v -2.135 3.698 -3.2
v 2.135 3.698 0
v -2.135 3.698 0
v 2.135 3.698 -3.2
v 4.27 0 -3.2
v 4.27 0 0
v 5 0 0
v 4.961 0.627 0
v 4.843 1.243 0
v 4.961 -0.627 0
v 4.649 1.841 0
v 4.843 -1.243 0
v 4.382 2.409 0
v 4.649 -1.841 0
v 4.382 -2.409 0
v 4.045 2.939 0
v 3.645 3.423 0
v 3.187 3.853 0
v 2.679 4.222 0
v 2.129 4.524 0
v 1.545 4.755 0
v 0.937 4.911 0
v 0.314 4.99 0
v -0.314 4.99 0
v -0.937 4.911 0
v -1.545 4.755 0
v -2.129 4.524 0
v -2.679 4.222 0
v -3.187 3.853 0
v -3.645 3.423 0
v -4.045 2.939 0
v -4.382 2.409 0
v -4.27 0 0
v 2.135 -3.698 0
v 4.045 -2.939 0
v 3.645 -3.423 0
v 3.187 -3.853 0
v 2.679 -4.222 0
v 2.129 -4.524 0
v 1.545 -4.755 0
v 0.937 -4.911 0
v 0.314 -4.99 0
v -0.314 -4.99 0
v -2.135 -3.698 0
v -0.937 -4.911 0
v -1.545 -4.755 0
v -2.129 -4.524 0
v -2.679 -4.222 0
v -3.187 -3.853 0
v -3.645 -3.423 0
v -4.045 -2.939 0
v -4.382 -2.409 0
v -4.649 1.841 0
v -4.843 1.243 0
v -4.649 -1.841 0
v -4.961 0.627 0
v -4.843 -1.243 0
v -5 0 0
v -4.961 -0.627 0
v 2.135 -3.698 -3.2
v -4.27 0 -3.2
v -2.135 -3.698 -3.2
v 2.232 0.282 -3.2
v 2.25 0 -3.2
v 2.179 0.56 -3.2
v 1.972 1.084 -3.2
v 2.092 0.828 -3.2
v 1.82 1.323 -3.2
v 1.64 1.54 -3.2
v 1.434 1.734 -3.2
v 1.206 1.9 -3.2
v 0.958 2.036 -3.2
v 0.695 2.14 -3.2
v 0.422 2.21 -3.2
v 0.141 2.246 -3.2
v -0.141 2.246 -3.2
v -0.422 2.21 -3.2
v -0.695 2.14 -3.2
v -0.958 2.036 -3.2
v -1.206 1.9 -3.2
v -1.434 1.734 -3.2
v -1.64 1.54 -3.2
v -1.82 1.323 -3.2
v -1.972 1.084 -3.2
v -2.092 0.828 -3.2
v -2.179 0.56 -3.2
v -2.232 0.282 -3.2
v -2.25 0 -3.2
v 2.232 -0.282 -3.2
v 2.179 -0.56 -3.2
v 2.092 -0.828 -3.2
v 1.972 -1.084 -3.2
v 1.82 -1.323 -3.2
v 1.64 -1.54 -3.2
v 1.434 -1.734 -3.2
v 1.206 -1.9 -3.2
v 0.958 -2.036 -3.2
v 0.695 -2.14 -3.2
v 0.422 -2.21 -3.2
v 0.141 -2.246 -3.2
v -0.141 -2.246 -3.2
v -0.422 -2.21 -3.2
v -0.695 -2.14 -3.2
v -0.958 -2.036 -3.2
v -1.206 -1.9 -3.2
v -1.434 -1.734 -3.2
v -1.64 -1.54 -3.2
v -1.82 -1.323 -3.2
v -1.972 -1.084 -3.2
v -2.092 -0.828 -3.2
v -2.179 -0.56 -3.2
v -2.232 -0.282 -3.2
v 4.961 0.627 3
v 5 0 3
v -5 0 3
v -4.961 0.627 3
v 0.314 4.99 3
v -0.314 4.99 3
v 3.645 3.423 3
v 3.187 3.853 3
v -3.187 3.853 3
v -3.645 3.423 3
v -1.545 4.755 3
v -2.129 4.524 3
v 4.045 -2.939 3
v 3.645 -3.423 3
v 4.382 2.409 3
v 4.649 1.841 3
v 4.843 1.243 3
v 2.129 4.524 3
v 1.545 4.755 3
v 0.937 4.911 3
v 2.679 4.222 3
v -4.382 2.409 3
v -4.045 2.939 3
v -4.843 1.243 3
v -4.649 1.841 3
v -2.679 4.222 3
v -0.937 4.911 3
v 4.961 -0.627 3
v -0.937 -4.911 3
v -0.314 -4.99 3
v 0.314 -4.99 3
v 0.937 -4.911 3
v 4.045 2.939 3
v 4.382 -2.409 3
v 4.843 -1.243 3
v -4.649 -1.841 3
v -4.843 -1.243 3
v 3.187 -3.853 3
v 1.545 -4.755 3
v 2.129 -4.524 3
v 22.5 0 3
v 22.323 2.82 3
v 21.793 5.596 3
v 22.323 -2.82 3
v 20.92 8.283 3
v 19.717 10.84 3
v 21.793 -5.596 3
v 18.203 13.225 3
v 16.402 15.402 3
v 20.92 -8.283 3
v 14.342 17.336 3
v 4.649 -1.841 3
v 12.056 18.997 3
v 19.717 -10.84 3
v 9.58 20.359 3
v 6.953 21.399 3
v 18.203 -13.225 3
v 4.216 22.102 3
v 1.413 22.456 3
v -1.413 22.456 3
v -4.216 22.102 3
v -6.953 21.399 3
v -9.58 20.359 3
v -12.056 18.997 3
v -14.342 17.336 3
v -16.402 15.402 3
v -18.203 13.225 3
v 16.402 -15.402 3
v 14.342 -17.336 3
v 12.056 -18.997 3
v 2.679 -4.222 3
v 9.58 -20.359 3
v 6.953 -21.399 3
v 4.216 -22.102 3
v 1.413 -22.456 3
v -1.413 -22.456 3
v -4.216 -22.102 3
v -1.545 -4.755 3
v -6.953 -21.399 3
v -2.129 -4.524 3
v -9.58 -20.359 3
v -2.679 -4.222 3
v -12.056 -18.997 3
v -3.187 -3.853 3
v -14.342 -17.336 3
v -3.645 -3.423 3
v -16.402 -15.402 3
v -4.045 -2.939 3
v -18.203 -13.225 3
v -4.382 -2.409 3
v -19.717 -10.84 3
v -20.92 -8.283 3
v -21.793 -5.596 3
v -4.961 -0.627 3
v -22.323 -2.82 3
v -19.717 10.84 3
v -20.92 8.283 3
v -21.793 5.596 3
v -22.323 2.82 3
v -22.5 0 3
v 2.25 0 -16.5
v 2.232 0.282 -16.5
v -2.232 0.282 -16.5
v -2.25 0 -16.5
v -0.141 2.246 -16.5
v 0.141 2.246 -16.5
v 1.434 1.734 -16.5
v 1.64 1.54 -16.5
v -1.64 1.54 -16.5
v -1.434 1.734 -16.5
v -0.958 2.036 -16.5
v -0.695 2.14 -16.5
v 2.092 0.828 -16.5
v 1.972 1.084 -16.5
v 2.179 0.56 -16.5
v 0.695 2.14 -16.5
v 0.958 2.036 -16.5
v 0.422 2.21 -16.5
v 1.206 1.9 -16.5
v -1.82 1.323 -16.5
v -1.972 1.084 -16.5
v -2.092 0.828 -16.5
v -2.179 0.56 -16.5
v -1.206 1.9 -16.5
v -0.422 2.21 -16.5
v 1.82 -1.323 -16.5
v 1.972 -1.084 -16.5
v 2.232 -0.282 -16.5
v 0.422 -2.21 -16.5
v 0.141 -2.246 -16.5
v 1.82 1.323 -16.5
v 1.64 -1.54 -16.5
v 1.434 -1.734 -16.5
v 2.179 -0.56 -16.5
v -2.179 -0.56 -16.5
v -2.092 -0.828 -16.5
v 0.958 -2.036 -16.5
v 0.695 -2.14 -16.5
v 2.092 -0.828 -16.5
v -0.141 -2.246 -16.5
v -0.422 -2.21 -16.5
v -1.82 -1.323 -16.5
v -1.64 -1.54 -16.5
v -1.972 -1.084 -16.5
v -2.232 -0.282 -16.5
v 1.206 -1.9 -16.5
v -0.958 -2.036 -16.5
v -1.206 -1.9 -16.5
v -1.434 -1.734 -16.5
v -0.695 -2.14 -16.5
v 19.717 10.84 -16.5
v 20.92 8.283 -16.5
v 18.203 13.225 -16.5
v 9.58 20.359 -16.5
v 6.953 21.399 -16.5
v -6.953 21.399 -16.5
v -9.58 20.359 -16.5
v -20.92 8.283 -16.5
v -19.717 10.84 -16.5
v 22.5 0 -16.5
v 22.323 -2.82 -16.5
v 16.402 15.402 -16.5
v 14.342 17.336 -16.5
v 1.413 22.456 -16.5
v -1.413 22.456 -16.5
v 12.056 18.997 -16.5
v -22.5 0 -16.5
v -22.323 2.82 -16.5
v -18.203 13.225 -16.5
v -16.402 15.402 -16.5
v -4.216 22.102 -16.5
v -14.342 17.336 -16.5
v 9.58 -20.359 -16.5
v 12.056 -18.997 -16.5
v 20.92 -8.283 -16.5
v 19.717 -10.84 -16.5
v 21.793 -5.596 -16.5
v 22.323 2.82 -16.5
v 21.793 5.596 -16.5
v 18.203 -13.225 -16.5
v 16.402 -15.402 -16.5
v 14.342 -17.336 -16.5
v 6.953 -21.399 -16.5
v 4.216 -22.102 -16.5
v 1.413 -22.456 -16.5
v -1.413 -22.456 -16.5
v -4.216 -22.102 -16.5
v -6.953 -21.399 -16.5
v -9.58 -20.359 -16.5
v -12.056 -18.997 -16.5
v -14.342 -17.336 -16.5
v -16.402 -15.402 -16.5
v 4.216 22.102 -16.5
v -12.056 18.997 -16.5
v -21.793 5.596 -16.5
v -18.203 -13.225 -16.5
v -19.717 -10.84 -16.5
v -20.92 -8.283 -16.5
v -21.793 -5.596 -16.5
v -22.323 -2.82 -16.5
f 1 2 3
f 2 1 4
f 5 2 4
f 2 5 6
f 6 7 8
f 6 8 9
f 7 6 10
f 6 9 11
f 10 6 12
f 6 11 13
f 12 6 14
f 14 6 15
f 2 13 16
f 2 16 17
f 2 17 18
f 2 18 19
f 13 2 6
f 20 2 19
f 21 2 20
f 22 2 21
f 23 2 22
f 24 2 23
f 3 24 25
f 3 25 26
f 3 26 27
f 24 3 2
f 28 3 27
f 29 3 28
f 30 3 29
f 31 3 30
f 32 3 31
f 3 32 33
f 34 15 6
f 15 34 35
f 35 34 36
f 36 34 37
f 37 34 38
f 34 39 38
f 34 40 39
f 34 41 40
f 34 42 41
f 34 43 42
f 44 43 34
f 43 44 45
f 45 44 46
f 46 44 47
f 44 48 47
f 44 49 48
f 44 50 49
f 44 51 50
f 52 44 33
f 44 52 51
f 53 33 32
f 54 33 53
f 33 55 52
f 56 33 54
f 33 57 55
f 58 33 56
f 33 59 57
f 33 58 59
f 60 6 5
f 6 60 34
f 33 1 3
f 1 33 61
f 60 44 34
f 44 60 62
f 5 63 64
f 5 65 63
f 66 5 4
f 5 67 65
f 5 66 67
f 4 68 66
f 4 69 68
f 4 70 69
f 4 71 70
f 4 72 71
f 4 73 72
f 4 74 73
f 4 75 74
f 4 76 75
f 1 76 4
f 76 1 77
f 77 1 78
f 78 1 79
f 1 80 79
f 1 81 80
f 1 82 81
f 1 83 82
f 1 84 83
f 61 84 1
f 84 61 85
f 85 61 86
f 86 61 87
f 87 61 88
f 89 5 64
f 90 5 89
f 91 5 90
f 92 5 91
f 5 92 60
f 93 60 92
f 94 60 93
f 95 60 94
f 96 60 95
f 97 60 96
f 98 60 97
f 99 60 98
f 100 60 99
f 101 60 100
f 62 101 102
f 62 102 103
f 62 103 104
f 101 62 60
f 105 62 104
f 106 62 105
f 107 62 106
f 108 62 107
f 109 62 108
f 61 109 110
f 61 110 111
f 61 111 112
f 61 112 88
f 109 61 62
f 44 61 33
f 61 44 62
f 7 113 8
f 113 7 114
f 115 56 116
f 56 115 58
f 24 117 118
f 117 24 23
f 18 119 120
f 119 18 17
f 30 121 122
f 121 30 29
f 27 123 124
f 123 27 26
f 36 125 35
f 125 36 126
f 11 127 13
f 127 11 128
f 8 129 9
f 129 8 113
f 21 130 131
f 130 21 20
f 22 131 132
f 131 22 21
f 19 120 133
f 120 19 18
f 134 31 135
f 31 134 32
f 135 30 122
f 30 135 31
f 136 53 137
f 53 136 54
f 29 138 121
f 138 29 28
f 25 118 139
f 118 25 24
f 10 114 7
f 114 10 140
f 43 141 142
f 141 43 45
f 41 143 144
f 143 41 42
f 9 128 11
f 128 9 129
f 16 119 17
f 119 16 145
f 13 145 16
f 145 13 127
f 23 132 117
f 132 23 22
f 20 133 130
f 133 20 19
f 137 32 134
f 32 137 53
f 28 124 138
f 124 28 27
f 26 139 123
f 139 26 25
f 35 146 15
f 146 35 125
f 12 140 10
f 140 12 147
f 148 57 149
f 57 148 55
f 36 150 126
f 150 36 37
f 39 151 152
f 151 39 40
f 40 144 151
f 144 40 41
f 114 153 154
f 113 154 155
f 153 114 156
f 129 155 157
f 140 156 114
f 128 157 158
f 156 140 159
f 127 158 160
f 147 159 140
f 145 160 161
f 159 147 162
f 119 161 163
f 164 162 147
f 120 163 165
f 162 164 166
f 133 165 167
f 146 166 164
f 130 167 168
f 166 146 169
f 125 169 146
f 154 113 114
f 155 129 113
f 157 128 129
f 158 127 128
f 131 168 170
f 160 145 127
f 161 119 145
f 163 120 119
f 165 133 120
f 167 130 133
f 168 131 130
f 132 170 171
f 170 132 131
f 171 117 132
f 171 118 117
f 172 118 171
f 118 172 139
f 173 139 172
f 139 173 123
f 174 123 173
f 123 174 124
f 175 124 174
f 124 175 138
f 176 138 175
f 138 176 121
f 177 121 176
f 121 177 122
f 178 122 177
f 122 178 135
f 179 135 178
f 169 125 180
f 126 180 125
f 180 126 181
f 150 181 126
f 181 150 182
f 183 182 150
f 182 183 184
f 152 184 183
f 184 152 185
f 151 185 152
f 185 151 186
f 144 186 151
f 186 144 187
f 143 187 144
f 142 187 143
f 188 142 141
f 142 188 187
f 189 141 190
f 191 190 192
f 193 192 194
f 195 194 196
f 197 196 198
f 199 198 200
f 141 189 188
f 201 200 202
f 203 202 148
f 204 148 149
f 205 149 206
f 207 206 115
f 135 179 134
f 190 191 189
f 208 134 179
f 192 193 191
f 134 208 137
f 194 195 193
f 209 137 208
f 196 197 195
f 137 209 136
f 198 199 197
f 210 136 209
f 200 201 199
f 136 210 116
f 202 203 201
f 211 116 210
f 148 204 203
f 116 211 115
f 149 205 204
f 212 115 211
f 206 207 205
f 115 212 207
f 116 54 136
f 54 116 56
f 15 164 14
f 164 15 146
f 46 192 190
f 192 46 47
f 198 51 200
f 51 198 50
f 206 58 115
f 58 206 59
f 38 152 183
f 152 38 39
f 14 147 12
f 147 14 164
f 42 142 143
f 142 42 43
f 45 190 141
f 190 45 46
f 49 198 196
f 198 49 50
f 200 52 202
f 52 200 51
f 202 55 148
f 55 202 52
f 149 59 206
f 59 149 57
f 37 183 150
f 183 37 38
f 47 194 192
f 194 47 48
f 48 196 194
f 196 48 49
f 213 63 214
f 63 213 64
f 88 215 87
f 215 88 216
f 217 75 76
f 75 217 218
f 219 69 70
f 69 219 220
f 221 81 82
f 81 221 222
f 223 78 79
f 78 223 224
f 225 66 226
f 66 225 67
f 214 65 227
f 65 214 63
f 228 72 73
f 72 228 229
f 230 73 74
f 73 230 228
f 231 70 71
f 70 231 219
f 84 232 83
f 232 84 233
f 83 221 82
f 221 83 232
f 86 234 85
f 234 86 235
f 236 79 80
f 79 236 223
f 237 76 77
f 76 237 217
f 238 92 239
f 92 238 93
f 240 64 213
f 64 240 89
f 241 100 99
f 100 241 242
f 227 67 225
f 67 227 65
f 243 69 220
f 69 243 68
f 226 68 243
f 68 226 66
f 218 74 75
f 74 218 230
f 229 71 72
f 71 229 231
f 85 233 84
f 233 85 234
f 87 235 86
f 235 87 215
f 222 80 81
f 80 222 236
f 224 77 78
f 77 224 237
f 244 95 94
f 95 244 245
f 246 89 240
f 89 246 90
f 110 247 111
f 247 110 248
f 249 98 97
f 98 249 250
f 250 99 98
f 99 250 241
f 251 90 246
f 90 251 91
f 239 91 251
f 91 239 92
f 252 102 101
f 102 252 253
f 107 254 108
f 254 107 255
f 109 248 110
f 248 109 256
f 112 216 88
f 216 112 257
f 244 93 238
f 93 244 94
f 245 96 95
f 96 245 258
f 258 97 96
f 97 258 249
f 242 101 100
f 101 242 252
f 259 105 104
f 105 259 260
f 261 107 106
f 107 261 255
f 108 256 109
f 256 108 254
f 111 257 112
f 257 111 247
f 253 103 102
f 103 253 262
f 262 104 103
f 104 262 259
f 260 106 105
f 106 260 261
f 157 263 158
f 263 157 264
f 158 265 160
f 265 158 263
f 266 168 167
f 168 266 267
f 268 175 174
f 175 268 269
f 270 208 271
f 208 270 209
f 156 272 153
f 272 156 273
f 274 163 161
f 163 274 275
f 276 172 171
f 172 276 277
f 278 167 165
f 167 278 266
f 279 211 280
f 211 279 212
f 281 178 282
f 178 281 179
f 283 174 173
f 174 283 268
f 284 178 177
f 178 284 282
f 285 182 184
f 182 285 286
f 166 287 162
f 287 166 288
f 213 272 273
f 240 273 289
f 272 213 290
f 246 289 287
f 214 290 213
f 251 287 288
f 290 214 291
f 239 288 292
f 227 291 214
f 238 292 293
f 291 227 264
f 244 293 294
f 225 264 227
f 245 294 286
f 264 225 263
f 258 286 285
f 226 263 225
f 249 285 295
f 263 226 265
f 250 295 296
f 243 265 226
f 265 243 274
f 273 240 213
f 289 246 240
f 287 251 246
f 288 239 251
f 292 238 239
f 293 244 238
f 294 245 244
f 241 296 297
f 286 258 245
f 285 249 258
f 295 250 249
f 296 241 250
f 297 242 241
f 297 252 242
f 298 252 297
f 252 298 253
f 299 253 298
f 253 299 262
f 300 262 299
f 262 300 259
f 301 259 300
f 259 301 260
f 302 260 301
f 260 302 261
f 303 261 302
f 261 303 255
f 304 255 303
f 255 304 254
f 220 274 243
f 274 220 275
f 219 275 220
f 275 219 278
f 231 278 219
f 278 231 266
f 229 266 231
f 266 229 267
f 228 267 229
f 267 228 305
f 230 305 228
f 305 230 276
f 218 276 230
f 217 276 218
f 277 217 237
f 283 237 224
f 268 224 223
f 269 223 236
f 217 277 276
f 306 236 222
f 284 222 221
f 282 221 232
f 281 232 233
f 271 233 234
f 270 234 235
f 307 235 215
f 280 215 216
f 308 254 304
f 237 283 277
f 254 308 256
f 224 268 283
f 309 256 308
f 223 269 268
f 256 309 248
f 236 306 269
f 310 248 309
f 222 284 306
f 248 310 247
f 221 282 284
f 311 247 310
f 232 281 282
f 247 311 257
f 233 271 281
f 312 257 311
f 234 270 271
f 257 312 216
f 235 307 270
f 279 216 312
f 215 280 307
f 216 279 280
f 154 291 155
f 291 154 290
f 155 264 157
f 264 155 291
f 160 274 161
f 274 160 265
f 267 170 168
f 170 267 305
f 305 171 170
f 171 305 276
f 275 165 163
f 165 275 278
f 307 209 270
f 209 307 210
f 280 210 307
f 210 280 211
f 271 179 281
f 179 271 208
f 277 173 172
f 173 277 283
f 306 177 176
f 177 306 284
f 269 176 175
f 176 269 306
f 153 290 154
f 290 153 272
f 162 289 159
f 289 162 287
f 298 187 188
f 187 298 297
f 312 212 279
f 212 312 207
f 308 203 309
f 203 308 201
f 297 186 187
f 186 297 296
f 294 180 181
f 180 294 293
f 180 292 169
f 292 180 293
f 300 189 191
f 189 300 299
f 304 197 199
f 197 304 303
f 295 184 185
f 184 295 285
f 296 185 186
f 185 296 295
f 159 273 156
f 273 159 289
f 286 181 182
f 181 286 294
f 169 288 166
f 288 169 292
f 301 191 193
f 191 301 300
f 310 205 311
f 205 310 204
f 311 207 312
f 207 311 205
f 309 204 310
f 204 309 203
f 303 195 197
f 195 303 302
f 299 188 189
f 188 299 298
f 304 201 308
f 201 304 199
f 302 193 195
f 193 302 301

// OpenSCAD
$fn = 50;


difference() {
	union() {
		translate(v = [0, 0, -16.5000000000]) {
			cylinder(h = 19.5000000000, r = 22.5000000000);
		}
	}
	union() {
		translate(v = [0, 0, 0]) {
			rotate(a = [0, 0, 0]) {
				difference() {
					union() {
						translate(v = [0, 0, -3.2000000000]) {
							linear_extrude(height = 3.2000000000) {
								polygon(points = [[4.2698000000, 0.0000000000], [2.1349000000, 3.6977552691], [-2.1349000000, 3.6977552691], [-4.2698000000, 0.0000000000], [-2.1349000000, -3.6977552691], [2.1349000000, -3.6977552691]]);
							}
						}
					}
					union();
				}
			}
		}
		#cylinder(h = 3, r = 5.0000000000);
		#translate(v = [0, 0, -100.0000000000]) {
			cylinder(h = 200, r = 2.2500000000);
		}
	}
}
